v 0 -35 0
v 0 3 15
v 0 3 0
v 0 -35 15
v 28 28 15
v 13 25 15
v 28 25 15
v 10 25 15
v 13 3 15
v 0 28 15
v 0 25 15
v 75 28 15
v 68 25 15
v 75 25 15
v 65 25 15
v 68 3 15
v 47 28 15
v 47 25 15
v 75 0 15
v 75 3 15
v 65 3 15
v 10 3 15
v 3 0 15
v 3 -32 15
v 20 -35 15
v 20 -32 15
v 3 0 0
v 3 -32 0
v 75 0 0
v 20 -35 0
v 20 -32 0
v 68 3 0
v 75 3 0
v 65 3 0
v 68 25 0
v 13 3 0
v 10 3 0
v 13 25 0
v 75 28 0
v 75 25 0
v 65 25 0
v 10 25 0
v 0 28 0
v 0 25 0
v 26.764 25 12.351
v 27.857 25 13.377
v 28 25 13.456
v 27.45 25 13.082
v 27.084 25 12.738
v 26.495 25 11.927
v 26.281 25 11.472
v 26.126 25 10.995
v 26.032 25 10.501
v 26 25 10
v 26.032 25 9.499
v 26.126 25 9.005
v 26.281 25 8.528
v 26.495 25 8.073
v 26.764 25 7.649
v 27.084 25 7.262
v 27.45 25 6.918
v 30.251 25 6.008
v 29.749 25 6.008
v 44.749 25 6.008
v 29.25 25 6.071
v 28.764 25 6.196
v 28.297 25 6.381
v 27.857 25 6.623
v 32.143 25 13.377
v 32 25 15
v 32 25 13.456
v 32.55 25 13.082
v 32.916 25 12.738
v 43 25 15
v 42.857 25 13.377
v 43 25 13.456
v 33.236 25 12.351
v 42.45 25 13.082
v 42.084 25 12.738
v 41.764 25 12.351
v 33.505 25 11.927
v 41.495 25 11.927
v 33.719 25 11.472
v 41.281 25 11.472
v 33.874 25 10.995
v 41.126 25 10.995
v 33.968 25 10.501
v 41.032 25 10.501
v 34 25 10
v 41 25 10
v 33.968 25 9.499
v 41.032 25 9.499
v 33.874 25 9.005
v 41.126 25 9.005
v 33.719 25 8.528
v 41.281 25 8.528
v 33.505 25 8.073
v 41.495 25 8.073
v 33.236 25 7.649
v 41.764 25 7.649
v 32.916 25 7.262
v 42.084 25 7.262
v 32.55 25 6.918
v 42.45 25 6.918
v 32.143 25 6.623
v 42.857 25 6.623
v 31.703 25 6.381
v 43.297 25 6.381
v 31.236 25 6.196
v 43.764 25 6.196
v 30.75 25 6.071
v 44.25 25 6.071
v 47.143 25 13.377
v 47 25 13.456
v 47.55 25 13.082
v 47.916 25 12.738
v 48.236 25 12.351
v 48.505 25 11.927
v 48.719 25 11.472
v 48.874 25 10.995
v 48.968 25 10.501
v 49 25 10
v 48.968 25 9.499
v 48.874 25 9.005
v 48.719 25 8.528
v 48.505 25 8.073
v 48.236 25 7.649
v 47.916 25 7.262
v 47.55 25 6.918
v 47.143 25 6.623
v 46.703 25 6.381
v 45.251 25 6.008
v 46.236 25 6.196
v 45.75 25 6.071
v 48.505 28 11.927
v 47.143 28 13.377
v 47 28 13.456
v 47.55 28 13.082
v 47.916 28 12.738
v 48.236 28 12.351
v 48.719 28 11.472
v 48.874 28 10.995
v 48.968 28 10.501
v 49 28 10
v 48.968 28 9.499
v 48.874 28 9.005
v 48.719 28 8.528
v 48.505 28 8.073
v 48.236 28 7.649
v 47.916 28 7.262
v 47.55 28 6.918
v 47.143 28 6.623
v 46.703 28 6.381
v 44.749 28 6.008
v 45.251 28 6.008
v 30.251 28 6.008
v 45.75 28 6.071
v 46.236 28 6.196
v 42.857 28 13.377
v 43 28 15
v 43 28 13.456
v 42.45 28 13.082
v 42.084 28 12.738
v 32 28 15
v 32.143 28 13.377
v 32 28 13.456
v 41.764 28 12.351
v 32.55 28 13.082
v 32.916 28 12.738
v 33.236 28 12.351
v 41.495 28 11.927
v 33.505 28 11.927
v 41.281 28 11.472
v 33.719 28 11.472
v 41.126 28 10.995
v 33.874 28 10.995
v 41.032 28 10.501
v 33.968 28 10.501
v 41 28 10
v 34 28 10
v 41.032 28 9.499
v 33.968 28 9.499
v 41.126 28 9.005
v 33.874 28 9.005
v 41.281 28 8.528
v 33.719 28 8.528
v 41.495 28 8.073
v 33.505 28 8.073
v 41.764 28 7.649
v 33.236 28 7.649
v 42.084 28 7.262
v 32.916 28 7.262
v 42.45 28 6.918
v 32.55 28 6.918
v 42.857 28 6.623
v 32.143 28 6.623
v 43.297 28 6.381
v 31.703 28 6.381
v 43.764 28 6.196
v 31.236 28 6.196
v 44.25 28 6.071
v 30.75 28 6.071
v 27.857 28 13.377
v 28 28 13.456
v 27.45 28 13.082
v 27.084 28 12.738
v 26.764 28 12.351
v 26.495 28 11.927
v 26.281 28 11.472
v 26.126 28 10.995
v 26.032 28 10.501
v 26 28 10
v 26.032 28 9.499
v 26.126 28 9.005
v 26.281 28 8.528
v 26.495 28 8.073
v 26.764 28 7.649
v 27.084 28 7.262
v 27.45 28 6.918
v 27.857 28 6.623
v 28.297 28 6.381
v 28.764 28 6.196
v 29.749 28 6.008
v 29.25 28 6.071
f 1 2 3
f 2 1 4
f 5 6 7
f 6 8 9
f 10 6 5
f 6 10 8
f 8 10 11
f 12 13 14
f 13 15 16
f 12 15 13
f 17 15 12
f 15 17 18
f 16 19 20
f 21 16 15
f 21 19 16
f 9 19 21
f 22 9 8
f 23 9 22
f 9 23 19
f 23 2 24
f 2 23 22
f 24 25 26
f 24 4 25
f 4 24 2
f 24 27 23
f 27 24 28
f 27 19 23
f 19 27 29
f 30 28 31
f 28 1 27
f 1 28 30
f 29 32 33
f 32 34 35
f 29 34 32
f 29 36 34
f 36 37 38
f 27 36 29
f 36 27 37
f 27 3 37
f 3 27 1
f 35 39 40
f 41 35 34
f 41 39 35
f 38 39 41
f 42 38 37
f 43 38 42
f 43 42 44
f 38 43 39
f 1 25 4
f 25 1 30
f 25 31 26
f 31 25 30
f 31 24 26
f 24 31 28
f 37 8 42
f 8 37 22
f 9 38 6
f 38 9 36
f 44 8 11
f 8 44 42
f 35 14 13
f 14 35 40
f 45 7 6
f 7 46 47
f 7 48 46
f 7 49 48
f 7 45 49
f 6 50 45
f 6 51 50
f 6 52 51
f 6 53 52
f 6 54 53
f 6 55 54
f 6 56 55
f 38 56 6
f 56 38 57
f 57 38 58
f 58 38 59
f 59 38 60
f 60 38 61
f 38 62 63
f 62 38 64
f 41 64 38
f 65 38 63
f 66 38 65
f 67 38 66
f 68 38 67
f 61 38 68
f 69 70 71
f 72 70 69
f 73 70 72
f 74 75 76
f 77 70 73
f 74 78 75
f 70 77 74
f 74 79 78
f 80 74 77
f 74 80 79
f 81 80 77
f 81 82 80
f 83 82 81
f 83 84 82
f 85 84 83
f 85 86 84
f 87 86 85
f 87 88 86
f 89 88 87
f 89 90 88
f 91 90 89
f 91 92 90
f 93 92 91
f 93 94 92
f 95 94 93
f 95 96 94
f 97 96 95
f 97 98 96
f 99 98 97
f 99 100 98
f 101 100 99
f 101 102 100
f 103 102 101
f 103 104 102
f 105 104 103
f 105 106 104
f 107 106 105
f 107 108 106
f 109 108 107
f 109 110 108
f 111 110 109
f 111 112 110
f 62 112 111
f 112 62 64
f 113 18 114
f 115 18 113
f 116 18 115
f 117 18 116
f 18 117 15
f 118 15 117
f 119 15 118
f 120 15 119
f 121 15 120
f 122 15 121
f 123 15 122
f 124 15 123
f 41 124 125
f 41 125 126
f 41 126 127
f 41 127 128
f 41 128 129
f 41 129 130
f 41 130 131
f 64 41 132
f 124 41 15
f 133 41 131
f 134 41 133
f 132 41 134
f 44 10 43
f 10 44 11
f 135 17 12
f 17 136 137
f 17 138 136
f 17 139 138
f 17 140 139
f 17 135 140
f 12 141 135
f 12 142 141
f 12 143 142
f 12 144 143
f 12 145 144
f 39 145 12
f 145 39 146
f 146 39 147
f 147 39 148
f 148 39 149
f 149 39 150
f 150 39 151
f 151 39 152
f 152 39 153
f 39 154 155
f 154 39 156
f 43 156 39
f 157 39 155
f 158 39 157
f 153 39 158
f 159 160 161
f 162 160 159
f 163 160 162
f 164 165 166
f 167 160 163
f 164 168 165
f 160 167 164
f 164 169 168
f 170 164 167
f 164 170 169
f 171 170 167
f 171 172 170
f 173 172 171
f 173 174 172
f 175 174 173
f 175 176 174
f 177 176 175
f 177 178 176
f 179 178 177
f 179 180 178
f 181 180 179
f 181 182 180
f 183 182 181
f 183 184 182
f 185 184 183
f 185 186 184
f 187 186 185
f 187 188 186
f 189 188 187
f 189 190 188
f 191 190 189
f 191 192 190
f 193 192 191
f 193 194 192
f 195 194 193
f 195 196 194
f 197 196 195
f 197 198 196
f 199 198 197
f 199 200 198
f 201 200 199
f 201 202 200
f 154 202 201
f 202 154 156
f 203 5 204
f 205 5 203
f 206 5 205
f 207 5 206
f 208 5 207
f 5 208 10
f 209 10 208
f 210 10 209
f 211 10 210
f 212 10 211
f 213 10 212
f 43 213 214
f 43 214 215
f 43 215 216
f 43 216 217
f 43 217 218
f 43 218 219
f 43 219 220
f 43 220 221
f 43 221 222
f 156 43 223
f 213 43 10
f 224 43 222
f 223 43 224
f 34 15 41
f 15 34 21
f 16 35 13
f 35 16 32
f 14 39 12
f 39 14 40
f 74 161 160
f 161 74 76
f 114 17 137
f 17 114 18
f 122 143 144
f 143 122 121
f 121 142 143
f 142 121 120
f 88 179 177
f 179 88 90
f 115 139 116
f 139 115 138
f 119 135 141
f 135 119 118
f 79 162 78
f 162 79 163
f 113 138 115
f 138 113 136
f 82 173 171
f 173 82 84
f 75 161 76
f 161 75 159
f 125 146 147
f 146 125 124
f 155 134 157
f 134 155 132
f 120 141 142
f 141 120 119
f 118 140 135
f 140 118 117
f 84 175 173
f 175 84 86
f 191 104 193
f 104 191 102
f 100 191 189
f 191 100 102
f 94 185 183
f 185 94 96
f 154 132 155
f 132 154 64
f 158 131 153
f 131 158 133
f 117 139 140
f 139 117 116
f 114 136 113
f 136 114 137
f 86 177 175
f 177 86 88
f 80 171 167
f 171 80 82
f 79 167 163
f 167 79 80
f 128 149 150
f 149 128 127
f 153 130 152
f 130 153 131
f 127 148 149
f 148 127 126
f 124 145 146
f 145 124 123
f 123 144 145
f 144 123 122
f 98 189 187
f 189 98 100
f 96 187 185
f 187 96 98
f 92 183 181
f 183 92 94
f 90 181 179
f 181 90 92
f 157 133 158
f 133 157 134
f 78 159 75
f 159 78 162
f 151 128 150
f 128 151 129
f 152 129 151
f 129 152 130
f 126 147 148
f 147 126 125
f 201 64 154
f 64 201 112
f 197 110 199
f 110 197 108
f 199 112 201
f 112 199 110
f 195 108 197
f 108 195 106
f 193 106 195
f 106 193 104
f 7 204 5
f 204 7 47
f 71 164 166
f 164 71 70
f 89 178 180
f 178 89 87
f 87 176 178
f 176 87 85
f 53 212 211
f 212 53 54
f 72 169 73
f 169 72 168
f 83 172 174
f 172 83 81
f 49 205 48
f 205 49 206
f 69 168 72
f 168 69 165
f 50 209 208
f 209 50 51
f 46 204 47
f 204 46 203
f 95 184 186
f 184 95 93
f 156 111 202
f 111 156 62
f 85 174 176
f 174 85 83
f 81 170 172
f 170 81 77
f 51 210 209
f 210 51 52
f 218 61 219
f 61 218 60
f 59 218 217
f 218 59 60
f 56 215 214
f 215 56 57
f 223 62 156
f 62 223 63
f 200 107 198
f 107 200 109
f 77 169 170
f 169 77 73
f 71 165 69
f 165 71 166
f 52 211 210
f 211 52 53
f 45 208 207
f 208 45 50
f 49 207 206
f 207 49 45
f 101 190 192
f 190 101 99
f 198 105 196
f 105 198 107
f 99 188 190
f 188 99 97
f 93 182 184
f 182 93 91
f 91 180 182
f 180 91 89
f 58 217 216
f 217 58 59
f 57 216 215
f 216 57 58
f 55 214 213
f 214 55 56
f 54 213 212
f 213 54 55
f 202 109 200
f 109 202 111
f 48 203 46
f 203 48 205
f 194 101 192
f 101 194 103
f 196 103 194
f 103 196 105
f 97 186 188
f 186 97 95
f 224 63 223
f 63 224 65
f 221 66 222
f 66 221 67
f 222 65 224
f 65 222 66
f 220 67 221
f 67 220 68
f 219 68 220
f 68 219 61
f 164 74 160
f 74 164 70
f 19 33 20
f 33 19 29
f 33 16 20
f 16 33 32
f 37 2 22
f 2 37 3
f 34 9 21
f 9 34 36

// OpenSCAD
wall = 3;
height = 15;
wire = 4;

complete();
//wire_holder(wall, height, wire);
module complete()
{
	translate([0, -35, 0]) {
		monitor_hook(wall, height);
	}

	main_beam(wall, height);

	translate([10, 0, 0]) {
		top_L(wall, height);
	}

	translate([65, 0, 0]) {
		bottom_L(wall, height);
	}

	translate([0, 25, 0]) {
		wire_holder(wall, height, wire);
	}

}

module main_beam(wall, height)
{
	cube([75, wall, height]);
}

module monitor_hook(wall, height)
{
	cube([wall, 35, height]);
	cube([20, wall, height]);
}

module top_L(wall, height)
{
	cube([wall, 25, height]);
	translate([-10, 25, 0]) {
		cube([10 + wall, wall, height]);
	}
}

module bottom_L(wall, height)
{
	cube([wall, 25, height]);
	translate([0, 25, 0]) {
		cube([10, wall, height]);
	}
}

module wire_holder(wall, height, wire)
{
	difference()
	{
		main_beam(wall, height);

		translate([45, wall * 1.5, height - 5]) {
			keyhole(wall * 2, wire);
		}
		translate([30, wall * 1.5, height - 5]) {
			keyhole(wall * 2, wire);
		}
	}
}


module keyhole(wall, entrance_width)
{
	hole_diameter = entrance_width * 2;
	translate([- hole_diameter / 4, -wall, 0]) {
		cube([entrance_width, wall, hole_diameter]);
	}
	rotate([90, 0, 0]) {
		cylinder(r = hole_diameter / 2, h = wall, $fn = 50 );
	}
}
